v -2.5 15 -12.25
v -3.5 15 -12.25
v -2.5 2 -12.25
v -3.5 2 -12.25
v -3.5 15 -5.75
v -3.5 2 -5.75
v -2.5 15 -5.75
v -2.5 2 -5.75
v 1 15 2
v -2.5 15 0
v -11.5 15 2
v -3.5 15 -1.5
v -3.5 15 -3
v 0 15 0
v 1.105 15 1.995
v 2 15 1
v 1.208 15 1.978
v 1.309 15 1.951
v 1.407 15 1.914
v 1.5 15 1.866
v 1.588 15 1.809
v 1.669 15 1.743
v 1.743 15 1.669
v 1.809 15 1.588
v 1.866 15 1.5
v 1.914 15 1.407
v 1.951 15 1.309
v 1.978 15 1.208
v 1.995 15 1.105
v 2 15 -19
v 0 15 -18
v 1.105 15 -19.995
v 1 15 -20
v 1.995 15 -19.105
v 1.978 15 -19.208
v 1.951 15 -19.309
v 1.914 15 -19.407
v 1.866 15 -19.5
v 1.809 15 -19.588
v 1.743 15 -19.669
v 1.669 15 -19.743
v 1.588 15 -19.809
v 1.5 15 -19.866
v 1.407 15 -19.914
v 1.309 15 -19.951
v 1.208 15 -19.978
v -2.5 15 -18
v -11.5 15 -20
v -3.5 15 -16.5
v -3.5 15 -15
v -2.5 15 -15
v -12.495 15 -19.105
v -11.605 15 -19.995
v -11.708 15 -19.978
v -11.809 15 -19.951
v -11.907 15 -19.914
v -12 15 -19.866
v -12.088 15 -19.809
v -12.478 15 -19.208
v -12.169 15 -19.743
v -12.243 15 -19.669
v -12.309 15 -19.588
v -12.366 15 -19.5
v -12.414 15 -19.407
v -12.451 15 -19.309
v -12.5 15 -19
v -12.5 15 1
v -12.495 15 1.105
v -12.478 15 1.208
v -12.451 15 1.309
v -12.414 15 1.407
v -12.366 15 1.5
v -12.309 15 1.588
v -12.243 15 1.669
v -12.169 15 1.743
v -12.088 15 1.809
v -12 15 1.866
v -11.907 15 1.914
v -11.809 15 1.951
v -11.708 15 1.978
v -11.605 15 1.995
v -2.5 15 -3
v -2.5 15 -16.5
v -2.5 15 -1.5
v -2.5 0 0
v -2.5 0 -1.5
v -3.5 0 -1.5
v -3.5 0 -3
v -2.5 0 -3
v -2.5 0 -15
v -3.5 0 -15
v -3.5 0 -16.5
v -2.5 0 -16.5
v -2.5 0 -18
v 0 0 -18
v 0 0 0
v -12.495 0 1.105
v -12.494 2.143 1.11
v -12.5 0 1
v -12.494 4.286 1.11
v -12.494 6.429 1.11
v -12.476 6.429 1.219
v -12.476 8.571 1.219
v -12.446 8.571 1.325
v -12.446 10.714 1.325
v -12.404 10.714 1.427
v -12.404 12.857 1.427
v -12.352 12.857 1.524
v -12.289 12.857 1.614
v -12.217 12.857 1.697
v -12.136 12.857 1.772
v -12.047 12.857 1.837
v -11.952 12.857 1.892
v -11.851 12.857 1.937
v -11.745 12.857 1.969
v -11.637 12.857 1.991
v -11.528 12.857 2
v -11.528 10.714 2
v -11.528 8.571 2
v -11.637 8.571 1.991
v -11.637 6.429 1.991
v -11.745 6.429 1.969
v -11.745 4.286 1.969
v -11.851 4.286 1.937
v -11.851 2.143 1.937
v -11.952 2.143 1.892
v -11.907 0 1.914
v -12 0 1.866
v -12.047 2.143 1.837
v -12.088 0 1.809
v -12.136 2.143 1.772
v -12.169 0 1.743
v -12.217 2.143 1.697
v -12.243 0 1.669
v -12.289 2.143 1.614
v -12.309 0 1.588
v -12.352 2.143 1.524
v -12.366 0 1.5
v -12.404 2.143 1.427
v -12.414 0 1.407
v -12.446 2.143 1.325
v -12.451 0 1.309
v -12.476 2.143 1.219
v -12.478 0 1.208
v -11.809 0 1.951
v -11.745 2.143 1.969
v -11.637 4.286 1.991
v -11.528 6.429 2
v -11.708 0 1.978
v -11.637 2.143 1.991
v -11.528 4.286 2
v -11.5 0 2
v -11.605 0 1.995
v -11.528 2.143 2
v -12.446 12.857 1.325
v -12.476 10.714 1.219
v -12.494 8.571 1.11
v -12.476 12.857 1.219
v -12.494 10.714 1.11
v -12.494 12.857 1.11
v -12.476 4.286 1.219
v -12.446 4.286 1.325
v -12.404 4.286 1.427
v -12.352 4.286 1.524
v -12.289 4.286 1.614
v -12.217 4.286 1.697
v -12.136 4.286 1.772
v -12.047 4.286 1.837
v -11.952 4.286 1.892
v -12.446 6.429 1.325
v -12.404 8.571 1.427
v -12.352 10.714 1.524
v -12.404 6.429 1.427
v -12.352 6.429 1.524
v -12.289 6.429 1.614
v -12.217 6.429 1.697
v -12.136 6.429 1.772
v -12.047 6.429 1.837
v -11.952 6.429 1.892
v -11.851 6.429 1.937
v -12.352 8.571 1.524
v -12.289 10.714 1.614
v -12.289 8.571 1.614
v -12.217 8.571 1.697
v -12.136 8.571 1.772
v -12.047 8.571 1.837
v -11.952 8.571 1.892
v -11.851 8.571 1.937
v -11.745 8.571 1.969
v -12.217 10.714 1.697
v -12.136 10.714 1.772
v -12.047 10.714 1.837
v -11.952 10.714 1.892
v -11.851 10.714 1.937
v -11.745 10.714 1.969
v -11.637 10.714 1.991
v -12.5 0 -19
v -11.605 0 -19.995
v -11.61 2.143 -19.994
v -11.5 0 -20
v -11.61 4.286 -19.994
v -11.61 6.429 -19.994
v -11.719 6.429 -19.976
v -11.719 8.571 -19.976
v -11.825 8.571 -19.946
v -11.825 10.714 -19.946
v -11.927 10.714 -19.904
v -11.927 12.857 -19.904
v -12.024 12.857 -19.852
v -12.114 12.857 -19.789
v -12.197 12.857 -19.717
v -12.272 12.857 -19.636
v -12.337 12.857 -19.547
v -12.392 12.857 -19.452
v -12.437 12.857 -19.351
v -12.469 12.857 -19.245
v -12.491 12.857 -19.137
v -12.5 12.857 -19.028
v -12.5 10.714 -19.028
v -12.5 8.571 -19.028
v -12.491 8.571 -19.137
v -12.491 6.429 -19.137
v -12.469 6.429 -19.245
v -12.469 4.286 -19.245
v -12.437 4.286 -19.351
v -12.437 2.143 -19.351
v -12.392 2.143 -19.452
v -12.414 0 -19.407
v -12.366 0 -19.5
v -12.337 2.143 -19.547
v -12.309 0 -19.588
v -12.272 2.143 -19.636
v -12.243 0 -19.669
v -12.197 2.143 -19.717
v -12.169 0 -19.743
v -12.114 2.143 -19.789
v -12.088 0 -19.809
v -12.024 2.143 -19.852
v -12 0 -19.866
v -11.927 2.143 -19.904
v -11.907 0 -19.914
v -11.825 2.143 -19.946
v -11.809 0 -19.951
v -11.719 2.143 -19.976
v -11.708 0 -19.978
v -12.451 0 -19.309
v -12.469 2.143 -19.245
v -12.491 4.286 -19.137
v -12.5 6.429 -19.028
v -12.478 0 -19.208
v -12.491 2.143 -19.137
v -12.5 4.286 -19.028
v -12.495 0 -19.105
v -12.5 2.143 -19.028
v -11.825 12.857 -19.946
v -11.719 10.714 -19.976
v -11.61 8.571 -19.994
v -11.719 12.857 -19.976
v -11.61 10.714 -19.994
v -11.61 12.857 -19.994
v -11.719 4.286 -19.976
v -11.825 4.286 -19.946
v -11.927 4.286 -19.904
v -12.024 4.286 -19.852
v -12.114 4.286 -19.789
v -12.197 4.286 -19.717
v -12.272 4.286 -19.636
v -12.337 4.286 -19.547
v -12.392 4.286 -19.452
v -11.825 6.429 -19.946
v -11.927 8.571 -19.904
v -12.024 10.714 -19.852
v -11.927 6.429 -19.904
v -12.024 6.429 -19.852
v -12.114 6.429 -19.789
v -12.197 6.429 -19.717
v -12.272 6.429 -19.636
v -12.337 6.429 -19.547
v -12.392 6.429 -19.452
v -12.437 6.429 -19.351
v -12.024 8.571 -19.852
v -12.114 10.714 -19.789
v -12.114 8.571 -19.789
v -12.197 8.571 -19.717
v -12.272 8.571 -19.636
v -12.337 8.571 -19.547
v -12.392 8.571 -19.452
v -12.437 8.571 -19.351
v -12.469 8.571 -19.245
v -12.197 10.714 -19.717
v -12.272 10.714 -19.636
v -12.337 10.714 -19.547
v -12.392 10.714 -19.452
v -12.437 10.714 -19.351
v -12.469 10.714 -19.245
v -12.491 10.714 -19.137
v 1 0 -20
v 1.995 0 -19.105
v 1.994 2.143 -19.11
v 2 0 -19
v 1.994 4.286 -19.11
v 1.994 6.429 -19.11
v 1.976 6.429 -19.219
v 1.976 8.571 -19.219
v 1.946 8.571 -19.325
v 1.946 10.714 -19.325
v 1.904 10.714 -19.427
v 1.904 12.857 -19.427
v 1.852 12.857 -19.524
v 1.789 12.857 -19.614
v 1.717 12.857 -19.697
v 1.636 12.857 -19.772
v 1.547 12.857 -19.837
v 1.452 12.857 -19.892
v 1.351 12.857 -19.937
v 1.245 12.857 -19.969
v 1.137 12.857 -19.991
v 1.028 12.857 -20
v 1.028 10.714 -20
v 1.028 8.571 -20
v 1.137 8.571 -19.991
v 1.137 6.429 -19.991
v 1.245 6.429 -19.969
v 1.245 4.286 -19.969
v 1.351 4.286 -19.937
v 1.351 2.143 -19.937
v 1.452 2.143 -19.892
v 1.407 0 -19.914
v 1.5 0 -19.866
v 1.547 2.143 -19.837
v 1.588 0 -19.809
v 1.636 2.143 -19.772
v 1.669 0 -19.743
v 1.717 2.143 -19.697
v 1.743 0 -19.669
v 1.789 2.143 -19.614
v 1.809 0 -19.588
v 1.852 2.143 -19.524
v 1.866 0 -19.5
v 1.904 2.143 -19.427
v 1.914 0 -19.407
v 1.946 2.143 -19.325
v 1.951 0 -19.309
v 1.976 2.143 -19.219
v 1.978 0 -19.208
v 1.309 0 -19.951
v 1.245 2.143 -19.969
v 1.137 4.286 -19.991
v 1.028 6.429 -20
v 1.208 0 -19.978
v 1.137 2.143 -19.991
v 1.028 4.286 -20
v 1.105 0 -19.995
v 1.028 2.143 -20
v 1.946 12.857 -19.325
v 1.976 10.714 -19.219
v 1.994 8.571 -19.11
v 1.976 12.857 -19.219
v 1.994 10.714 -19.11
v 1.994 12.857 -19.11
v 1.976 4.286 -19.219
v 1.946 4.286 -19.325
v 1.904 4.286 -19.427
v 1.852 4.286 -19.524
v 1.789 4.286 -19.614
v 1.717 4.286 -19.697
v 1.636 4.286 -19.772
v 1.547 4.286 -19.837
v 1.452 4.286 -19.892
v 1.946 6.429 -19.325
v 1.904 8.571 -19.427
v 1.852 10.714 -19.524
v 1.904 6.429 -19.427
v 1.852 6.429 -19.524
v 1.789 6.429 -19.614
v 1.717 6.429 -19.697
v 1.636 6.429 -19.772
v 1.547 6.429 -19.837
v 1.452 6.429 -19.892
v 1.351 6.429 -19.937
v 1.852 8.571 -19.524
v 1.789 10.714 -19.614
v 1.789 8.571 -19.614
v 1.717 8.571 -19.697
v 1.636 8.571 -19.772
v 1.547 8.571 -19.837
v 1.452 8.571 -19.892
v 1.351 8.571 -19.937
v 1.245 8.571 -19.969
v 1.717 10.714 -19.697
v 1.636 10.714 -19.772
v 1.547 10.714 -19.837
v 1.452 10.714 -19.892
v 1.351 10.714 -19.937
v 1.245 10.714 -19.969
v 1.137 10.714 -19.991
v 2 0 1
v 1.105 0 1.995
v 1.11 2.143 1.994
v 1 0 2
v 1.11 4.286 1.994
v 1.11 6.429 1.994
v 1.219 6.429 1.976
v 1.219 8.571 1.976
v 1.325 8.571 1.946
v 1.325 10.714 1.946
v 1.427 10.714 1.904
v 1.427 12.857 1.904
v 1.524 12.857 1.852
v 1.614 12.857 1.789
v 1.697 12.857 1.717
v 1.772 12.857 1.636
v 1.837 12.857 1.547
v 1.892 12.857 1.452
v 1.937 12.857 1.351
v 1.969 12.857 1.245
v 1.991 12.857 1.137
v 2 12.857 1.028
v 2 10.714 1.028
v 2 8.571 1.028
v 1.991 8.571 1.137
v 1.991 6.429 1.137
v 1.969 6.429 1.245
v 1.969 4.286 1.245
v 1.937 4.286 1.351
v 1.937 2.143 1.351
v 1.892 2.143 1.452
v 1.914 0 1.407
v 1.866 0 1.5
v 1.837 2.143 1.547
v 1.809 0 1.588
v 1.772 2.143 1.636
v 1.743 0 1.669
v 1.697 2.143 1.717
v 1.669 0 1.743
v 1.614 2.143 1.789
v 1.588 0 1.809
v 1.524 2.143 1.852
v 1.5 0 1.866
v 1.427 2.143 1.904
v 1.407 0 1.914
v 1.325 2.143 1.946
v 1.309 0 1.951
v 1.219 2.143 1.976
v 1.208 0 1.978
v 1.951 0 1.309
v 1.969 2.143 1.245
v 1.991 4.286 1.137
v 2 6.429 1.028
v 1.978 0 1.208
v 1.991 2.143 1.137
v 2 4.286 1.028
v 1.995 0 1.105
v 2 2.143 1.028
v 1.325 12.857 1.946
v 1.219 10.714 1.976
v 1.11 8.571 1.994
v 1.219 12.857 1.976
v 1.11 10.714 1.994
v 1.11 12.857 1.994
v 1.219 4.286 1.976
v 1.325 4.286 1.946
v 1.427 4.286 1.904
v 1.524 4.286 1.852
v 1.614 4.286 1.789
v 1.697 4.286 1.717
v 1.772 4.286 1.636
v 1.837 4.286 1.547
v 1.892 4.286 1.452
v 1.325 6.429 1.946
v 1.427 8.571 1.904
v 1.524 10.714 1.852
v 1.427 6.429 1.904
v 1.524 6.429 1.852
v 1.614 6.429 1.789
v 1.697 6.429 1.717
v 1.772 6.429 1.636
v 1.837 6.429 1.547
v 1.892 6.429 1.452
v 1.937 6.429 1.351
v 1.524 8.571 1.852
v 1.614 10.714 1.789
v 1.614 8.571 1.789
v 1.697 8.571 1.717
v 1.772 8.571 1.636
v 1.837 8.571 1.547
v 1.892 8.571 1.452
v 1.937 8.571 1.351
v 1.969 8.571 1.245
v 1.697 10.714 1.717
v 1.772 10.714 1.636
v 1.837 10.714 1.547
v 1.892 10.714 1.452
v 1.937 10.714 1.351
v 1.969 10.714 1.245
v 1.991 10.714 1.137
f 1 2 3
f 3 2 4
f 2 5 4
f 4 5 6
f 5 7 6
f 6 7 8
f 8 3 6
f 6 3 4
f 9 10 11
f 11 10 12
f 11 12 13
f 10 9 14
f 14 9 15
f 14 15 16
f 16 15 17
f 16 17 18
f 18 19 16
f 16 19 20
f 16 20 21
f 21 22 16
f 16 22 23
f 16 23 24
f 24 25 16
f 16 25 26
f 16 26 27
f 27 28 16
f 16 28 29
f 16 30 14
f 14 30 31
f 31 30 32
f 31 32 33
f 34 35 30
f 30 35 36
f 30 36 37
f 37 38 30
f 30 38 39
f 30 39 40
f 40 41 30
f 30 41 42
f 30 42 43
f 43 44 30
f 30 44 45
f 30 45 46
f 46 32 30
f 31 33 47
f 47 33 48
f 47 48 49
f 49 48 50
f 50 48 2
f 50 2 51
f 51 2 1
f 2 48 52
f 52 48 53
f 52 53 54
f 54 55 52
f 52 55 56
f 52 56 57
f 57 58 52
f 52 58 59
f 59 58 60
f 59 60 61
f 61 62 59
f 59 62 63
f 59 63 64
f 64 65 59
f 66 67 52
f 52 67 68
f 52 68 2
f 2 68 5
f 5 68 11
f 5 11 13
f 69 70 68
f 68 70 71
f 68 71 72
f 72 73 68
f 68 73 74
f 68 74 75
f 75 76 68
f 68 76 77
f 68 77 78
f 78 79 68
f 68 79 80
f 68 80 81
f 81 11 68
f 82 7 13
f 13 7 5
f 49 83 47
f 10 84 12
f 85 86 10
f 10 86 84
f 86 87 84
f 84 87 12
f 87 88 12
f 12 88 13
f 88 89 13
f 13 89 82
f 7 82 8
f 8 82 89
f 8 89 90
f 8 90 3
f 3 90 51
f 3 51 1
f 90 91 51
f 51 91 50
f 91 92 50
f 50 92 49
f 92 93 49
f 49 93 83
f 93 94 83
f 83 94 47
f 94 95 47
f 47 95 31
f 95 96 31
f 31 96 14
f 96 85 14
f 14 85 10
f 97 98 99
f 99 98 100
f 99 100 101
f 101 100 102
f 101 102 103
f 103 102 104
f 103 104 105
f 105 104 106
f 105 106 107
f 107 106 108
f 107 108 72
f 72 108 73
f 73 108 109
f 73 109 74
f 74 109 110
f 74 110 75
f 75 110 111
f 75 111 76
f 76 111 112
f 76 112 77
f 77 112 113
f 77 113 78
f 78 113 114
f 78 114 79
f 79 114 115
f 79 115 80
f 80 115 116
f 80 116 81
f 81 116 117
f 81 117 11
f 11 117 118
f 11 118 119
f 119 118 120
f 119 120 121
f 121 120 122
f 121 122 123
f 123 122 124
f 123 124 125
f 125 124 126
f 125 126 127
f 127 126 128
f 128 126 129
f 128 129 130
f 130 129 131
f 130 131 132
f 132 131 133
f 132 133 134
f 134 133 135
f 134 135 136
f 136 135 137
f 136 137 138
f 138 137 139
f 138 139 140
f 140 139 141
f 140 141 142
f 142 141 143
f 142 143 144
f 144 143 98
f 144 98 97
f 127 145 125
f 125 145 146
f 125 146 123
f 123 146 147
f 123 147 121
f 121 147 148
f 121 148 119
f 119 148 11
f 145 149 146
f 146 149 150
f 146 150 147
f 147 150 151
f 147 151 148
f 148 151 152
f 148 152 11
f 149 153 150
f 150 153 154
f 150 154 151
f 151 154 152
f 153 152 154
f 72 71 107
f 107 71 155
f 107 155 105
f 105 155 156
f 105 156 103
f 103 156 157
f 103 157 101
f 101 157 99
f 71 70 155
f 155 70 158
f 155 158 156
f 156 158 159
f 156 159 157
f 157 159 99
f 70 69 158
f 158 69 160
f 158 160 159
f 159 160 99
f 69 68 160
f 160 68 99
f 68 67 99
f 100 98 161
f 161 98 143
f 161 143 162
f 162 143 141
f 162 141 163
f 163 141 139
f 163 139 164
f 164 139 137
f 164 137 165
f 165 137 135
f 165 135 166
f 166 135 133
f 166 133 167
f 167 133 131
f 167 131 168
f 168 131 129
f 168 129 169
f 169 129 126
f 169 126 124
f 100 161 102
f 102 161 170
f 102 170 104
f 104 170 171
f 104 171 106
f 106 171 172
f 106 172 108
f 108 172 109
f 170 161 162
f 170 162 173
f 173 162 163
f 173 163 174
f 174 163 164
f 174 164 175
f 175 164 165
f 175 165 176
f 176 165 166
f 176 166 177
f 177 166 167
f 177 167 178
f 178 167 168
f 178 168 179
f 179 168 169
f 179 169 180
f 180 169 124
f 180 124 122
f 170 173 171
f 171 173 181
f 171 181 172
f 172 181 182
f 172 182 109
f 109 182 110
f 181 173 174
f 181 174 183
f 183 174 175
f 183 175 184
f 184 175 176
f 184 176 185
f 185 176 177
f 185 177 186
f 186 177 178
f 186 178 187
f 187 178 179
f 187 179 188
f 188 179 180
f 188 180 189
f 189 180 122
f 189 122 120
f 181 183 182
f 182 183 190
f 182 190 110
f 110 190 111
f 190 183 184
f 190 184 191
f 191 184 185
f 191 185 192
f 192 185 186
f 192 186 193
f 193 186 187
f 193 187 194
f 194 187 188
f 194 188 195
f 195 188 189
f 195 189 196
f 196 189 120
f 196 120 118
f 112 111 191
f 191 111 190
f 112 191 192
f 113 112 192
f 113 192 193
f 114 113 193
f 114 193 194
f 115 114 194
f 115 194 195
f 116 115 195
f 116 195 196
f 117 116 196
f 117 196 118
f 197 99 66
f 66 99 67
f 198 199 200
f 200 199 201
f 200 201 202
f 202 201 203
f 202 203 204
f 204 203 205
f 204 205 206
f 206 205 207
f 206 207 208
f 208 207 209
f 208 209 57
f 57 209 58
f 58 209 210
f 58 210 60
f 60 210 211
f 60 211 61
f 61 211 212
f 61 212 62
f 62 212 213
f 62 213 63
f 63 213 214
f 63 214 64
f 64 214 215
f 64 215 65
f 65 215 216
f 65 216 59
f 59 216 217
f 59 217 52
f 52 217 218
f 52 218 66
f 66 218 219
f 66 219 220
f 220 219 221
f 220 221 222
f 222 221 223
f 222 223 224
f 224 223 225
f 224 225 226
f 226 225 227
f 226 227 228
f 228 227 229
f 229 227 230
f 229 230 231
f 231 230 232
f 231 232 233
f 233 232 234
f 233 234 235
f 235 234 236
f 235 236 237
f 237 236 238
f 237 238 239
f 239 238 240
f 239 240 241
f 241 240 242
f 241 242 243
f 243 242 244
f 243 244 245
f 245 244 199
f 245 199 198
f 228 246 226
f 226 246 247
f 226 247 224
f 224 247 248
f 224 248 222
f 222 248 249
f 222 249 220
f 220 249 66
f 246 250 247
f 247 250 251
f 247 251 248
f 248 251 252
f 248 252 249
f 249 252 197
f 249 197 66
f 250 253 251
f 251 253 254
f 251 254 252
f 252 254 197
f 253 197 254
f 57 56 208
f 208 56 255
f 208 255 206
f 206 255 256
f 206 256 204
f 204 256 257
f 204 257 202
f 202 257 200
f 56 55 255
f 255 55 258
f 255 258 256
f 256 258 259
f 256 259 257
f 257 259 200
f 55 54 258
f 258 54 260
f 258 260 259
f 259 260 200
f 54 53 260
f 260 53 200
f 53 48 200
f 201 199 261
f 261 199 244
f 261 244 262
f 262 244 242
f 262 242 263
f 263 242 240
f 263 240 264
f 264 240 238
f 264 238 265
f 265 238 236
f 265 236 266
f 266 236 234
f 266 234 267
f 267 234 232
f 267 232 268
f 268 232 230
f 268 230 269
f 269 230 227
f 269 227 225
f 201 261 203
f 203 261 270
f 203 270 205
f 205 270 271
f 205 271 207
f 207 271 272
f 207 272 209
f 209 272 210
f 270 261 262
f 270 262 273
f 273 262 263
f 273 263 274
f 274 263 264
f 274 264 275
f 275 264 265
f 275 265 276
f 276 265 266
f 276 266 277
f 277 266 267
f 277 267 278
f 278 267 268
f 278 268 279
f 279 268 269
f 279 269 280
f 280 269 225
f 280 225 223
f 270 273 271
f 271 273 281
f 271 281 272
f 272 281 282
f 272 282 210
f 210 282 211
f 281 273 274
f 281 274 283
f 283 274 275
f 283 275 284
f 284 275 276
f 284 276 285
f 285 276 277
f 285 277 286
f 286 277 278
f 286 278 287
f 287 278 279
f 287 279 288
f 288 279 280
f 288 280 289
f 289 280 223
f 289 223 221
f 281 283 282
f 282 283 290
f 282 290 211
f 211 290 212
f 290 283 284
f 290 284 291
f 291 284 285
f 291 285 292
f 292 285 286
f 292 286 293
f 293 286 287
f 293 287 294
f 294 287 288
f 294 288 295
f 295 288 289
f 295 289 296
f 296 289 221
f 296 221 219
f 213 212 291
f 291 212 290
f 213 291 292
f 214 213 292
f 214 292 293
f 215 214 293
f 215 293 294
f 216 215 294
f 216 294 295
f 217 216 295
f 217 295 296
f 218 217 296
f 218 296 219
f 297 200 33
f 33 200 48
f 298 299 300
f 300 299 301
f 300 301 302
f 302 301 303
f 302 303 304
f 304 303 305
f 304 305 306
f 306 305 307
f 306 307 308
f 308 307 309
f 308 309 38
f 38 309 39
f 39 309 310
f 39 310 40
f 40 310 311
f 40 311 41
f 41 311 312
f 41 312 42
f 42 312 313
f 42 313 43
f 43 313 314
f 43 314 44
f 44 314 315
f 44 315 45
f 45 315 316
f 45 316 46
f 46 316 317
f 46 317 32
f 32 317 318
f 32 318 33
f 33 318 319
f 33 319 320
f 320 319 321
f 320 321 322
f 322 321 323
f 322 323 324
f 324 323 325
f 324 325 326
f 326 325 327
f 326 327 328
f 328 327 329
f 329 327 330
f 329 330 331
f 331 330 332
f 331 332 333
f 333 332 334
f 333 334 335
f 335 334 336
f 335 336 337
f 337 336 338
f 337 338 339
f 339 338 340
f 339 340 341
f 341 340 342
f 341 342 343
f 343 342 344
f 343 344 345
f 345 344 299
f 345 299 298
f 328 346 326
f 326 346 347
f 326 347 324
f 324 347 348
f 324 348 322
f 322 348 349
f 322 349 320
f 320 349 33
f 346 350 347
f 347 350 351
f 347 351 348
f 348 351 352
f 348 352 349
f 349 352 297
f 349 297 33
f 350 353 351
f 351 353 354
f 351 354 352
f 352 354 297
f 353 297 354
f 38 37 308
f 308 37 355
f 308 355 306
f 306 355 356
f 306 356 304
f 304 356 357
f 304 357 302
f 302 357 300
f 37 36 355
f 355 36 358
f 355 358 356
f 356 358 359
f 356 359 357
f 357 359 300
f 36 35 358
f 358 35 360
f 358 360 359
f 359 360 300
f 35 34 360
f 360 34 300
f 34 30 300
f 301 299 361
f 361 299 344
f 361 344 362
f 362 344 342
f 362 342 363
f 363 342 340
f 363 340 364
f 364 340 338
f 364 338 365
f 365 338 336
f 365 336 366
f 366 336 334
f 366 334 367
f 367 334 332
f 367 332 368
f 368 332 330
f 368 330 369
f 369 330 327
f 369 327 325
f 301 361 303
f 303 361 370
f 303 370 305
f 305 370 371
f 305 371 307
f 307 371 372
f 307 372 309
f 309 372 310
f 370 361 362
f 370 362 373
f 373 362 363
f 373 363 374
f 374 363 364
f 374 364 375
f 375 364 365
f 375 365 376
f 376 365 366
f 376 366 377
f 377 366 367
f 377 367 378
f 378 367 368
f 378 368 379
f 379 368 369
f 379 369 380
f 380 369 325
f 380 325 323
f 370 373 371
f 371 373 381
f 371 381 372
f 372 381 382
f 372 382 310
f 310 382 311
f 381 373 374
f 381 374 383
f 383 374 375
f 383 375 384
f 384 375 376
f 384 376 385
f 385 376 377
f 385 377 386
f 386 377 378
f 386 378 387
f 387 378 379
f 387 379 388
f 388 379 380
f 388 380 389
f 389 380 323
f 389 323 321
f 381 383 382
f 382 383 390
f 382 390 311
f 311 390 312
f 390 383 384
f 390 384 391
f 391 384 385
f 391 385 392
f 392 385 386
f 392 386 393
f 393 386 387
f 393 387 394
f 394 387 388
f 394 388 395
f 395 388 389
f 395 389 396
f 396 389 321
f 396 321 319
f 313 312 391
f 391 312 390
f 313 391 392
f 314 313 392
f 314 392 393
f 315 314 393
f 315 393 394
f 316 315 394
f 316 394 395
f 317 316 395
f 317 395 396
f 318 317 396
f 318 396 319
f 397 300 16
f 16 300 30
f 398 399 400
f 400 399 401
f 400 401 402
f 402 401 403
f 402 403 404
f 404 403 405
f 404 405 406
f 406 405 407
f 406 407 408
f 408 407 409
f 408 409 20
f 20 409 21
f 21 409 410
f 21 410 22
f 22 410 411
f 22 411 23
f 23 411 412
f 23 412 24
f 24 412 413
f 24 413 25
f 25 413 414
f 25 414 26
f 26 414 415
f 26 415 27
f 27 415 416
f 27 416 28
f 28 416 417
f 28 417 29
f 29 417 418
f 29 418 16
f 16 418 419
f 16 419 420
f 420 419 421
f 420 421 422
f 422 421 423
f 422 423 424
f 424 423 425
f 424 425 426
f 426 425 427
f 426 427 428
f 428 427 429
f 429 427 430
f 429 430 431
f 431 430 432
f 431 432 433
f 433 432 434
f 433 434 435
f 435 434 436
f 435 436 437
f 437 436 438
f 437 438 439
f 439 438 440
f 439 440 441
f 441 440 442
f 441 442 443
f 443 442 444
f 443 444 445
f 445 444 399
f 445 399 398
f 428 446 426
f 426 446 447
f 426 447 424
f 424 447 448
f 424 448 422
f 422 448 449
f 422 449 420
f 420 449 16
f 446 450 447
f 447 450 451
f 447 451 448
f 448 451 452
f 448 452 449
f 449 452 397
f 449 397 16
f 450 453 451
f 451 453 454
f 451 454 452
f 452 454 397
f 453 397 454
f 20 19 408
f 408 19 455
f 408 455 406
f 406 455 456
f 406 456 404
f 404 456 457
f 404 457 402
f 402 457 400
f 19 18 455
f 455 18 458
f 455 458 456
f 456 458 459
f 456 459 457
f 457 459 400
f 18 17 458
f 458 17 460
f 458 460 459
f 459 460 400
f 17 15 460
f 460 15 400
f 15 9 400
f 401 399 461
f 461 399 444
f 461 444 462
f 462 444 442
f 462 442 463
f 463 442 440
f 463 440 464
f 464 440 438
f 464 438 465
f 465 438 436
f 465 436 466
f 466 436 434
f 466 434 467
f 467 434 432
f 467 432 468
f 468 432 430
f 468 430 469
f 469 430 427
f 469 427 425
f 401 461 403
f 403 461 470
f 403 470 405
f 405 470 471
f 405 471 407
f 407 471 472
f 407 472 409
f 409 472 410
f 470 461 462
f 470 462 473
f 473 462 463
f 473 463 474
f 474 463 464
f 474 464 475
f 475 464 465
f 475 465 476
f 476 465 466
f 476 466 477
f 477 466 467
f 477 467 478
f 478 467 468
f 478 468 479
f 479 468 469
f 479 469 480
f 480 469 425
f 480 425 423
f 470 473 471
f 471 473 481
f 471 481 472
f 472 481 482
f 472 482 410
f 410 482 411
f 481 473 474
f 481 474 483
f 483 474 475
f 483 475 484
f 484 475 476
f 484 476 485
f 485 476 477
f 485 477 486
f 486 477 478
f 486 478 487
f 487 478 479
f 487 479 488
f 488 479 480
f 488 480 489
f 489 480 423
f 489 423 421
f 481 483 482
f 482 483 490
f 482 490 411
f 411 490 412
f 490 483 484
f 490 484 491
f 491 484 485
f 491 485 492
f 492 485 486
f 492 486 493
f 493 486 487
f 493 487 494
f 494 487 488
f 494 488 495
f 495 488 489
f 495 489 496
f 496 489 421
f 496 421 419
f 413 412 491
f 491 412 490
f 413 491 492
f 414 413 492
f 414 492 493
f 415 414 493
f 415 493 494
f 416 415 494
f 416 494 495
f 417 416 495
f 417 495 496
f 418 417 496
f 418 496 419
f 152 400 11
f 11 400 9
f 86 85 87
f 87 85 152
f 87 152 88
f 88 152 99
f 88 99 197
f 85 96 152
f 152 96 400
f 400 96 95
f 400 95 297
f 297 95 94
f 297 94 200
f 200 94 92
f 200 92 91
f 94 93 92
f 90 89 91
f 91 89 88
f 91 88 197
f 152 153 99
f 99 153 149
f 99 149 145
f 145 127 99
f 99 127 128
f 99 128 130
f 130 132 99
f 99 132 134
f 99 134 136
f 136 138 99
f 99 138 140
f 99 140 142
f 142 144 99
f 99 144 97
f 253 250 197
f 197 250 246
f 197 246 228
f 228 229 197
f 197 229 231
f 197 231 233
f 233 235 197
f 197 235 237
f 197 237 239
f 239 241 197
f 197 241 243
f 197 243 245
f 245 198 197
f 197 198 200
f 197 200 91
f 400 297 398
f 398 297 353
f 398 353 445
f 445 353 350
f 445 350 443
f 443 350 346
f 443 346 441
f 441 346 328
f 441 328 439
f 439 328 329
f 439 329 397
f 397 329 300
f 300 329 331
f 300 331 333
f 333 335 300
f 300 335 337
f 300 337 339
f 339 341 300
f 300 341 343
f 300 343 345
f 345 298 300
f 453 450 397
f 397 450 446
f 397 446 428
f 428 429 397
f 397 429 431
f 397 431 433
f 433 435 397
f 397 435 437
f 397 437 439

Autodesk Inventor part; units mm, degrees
ref_plane "YZ Plane" through (0, 0, 0) normal (1, 0, 0) x (0, 1, 0)
ref_plane "XZ Plane" through (0, 0, 0) normal (0, 1, 0) x (-1, 0, 0)
ref_plane "XY Plane" through (0, 0, 0) normal (0, 0, 1) x (1, 0, 0)
sketch "Sketch1" plane through (0, 0, 0) normal (0, 1, 0) x (-1, 0, 0)
  line L0 (0, 0) -> (2.5, 0)
  line L1 (2.5, -18) -> (0, -18)
  line L2 (0, -18) -> (0, 0)
  line L3 (11.5, 2) -> (-1, 2)
  line L4 (-2, 1) -> (-2, -19)
  line L5 (-1, -20) -> (11.5, -20)
  line L6 (12.5, -19) -> (12.5, 1)
  line L7 (2.5, -1.5) -> (3.5, -1.5)
  line L8 (2.5, -16.5) -> (3.5, -16.5)
  line L9 (3.5, -1.5) -> (3.5, -3)
  line L10 (3.5, -3) -> (2.5, -3)
  line L11 (3.5, -16.5) -> (3.5, -15)
  line L12 (3.5, -15) -> (2.5, -15)
  line L13 (2.5, -1.5) -> (2.5, 0)
  line L14 (2.5, -3) -> (2.5, -15)
  line L15 (2.5, -16.5) -> (2.5, -18)
  arc A0 (-1, 2) -> (-2, 1) centre (-1, 1) ccw
  arc A1 (-2, -19) -> (-1, -20) centre (-1, -19) ccw
  arc A2 (11.5, -20) -> (12.5, -19) centre (11.5, -19) ccw
  arc A3 (12.5, 1) -> (11.5, 2) centre (11.5, 1) ccw
  dimension "d0" = 18
  dimension "d1" = 2.5
  dimension "d3" = 2
  dimension "d4" = 2
  dimension "d5" = 2
  dimension "d7" = 1
  dimension "d8" = 15
  dimension "d10" = 1.5
  dimension "d11" = 1.5
  dimension "d12" = 1
sketch "Sketch3" plane through (0, 0, 0) normal (0, 1, 0) x (-1, 0, 0)
  point P0 (0, 0)
extrude "Extrusion1" add sketch "Sketch1" along normal blind 15
sketch "Sketch4" plane through (0, 15, 0) normal (0, 1, 0) x (1, 0, 0)
  point P0 (0, 0)
sketch "Sketch5" plane through (0, 15, 0) normal (0, 1, 0) x (1, 0, 0)
  line L0 (-2.5, 5.75) -> (-3.5, 5.75)
  line L1 (-3.5, 5.75) -> (-3.5, 12.25)
  line L2 (-3.5, 12.25) -> (-2.5, 12.25)
  line L3 (-2.5, 12.25) -> (-2.5, 5.75)
  line L4 (-2.5, 3) -> (-2.5, 15) projected
  line L5 (-11.5, -2) -> (1, -2) projected
  point P0 (0, 0)
  dimension "d15" = 1
  dimension "d16" = 6.5
  dimension "d17" = 0
  dimension "d18" = 7.75
extrude "Extrusion2" cut sketch "Sketch5" against normal blind 13
properties part number "clip_fit_prototype"
